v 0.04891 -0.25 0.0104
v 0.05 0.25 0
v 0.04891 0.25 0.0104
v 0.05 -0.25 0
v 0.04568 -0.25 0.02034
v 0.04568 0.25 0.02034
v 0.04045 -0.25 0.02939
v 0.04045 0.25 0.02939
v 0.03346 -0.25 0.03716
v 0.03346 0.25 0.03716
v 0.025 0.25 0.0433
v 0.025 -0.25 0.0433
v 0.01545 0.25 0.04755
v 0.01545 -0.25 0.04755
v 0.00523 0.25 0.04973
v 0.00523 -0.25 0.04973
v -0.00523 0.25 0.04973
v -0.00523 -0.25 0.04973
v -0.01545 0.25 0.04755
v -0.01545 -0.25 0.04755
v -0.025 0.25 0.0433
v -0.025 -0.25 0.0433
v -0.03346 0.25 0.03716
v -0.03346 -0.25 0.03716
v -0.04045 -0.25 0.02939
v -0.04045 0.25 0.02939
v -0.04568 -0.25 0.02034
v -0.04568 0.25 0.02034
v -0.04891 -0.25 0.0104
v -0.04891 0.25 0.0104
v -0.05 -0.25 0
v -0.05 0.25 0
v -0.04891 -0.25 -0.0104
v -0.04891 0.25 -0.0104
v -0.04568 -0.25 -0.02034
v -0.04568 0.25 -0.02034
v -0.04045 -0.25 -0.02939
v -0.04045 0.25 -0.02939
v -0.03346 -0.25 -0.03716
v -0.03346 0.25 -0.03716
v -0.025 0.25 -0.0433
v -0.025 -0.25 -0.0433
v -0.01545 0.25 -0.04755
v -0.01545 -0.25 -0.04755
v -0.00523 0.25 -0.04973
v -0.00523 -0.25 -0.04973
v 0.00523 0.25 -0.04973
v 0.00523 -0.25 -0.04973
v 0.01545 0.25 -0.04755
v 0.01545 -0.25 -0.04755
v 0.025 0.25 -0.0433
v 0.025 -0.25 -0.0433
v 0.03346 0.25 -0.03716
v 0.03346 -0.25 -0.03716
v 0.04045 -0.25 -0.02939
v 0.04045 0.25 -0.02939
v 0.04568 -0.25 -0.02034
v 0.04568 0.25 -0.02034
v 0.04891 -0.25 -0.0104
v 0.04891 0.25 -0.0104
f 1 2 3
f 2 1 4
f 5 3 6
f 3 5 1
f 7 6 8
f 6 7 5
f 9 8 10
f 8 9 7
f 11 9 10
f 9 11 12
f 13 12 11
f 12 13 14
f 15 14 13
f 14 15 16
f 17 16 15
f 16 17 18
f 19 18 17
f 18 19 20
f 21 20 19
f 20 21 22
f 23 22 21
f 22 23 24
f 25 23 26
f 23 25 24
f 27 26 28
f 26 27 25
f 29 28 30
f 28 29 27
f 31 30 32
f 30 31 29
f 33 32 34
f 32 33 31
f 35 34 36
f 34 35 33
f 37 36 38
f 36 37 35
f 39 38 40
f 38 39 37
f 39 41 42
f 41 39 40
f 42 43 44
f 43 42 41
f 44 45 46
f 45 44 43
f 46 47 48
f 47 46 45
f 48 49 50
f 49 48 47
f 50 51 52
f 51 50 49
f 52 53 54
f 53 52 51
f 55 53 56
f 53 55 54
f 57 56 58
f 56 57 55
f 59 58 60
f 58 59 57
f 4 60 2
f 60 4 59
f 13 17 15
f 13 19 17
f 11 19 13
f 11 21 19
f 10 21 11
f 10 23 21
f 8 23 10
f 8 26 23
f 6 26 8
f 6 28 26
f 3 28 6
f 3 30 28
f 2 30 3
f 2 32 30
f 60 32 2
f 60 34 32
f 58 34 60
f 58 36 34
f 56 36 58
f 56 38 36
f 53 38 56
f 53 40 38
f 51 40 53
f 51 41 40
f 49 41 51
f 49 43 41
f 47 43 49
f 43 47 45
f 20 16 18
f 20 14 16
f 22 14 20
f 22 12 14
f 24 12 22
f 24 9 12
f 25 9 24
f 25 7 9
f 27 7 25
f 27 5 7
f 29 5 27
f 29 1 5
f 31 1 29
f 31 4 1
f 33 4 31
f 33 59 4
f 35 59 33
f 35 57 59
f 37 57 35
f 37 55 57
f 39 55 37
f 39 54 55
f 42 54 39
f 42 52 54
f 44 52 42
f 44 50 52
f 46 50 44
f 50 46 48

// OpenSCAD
rotate([90,0,0])
cylinder(h=0.5, r=0.05, center=true, $fn=30);
